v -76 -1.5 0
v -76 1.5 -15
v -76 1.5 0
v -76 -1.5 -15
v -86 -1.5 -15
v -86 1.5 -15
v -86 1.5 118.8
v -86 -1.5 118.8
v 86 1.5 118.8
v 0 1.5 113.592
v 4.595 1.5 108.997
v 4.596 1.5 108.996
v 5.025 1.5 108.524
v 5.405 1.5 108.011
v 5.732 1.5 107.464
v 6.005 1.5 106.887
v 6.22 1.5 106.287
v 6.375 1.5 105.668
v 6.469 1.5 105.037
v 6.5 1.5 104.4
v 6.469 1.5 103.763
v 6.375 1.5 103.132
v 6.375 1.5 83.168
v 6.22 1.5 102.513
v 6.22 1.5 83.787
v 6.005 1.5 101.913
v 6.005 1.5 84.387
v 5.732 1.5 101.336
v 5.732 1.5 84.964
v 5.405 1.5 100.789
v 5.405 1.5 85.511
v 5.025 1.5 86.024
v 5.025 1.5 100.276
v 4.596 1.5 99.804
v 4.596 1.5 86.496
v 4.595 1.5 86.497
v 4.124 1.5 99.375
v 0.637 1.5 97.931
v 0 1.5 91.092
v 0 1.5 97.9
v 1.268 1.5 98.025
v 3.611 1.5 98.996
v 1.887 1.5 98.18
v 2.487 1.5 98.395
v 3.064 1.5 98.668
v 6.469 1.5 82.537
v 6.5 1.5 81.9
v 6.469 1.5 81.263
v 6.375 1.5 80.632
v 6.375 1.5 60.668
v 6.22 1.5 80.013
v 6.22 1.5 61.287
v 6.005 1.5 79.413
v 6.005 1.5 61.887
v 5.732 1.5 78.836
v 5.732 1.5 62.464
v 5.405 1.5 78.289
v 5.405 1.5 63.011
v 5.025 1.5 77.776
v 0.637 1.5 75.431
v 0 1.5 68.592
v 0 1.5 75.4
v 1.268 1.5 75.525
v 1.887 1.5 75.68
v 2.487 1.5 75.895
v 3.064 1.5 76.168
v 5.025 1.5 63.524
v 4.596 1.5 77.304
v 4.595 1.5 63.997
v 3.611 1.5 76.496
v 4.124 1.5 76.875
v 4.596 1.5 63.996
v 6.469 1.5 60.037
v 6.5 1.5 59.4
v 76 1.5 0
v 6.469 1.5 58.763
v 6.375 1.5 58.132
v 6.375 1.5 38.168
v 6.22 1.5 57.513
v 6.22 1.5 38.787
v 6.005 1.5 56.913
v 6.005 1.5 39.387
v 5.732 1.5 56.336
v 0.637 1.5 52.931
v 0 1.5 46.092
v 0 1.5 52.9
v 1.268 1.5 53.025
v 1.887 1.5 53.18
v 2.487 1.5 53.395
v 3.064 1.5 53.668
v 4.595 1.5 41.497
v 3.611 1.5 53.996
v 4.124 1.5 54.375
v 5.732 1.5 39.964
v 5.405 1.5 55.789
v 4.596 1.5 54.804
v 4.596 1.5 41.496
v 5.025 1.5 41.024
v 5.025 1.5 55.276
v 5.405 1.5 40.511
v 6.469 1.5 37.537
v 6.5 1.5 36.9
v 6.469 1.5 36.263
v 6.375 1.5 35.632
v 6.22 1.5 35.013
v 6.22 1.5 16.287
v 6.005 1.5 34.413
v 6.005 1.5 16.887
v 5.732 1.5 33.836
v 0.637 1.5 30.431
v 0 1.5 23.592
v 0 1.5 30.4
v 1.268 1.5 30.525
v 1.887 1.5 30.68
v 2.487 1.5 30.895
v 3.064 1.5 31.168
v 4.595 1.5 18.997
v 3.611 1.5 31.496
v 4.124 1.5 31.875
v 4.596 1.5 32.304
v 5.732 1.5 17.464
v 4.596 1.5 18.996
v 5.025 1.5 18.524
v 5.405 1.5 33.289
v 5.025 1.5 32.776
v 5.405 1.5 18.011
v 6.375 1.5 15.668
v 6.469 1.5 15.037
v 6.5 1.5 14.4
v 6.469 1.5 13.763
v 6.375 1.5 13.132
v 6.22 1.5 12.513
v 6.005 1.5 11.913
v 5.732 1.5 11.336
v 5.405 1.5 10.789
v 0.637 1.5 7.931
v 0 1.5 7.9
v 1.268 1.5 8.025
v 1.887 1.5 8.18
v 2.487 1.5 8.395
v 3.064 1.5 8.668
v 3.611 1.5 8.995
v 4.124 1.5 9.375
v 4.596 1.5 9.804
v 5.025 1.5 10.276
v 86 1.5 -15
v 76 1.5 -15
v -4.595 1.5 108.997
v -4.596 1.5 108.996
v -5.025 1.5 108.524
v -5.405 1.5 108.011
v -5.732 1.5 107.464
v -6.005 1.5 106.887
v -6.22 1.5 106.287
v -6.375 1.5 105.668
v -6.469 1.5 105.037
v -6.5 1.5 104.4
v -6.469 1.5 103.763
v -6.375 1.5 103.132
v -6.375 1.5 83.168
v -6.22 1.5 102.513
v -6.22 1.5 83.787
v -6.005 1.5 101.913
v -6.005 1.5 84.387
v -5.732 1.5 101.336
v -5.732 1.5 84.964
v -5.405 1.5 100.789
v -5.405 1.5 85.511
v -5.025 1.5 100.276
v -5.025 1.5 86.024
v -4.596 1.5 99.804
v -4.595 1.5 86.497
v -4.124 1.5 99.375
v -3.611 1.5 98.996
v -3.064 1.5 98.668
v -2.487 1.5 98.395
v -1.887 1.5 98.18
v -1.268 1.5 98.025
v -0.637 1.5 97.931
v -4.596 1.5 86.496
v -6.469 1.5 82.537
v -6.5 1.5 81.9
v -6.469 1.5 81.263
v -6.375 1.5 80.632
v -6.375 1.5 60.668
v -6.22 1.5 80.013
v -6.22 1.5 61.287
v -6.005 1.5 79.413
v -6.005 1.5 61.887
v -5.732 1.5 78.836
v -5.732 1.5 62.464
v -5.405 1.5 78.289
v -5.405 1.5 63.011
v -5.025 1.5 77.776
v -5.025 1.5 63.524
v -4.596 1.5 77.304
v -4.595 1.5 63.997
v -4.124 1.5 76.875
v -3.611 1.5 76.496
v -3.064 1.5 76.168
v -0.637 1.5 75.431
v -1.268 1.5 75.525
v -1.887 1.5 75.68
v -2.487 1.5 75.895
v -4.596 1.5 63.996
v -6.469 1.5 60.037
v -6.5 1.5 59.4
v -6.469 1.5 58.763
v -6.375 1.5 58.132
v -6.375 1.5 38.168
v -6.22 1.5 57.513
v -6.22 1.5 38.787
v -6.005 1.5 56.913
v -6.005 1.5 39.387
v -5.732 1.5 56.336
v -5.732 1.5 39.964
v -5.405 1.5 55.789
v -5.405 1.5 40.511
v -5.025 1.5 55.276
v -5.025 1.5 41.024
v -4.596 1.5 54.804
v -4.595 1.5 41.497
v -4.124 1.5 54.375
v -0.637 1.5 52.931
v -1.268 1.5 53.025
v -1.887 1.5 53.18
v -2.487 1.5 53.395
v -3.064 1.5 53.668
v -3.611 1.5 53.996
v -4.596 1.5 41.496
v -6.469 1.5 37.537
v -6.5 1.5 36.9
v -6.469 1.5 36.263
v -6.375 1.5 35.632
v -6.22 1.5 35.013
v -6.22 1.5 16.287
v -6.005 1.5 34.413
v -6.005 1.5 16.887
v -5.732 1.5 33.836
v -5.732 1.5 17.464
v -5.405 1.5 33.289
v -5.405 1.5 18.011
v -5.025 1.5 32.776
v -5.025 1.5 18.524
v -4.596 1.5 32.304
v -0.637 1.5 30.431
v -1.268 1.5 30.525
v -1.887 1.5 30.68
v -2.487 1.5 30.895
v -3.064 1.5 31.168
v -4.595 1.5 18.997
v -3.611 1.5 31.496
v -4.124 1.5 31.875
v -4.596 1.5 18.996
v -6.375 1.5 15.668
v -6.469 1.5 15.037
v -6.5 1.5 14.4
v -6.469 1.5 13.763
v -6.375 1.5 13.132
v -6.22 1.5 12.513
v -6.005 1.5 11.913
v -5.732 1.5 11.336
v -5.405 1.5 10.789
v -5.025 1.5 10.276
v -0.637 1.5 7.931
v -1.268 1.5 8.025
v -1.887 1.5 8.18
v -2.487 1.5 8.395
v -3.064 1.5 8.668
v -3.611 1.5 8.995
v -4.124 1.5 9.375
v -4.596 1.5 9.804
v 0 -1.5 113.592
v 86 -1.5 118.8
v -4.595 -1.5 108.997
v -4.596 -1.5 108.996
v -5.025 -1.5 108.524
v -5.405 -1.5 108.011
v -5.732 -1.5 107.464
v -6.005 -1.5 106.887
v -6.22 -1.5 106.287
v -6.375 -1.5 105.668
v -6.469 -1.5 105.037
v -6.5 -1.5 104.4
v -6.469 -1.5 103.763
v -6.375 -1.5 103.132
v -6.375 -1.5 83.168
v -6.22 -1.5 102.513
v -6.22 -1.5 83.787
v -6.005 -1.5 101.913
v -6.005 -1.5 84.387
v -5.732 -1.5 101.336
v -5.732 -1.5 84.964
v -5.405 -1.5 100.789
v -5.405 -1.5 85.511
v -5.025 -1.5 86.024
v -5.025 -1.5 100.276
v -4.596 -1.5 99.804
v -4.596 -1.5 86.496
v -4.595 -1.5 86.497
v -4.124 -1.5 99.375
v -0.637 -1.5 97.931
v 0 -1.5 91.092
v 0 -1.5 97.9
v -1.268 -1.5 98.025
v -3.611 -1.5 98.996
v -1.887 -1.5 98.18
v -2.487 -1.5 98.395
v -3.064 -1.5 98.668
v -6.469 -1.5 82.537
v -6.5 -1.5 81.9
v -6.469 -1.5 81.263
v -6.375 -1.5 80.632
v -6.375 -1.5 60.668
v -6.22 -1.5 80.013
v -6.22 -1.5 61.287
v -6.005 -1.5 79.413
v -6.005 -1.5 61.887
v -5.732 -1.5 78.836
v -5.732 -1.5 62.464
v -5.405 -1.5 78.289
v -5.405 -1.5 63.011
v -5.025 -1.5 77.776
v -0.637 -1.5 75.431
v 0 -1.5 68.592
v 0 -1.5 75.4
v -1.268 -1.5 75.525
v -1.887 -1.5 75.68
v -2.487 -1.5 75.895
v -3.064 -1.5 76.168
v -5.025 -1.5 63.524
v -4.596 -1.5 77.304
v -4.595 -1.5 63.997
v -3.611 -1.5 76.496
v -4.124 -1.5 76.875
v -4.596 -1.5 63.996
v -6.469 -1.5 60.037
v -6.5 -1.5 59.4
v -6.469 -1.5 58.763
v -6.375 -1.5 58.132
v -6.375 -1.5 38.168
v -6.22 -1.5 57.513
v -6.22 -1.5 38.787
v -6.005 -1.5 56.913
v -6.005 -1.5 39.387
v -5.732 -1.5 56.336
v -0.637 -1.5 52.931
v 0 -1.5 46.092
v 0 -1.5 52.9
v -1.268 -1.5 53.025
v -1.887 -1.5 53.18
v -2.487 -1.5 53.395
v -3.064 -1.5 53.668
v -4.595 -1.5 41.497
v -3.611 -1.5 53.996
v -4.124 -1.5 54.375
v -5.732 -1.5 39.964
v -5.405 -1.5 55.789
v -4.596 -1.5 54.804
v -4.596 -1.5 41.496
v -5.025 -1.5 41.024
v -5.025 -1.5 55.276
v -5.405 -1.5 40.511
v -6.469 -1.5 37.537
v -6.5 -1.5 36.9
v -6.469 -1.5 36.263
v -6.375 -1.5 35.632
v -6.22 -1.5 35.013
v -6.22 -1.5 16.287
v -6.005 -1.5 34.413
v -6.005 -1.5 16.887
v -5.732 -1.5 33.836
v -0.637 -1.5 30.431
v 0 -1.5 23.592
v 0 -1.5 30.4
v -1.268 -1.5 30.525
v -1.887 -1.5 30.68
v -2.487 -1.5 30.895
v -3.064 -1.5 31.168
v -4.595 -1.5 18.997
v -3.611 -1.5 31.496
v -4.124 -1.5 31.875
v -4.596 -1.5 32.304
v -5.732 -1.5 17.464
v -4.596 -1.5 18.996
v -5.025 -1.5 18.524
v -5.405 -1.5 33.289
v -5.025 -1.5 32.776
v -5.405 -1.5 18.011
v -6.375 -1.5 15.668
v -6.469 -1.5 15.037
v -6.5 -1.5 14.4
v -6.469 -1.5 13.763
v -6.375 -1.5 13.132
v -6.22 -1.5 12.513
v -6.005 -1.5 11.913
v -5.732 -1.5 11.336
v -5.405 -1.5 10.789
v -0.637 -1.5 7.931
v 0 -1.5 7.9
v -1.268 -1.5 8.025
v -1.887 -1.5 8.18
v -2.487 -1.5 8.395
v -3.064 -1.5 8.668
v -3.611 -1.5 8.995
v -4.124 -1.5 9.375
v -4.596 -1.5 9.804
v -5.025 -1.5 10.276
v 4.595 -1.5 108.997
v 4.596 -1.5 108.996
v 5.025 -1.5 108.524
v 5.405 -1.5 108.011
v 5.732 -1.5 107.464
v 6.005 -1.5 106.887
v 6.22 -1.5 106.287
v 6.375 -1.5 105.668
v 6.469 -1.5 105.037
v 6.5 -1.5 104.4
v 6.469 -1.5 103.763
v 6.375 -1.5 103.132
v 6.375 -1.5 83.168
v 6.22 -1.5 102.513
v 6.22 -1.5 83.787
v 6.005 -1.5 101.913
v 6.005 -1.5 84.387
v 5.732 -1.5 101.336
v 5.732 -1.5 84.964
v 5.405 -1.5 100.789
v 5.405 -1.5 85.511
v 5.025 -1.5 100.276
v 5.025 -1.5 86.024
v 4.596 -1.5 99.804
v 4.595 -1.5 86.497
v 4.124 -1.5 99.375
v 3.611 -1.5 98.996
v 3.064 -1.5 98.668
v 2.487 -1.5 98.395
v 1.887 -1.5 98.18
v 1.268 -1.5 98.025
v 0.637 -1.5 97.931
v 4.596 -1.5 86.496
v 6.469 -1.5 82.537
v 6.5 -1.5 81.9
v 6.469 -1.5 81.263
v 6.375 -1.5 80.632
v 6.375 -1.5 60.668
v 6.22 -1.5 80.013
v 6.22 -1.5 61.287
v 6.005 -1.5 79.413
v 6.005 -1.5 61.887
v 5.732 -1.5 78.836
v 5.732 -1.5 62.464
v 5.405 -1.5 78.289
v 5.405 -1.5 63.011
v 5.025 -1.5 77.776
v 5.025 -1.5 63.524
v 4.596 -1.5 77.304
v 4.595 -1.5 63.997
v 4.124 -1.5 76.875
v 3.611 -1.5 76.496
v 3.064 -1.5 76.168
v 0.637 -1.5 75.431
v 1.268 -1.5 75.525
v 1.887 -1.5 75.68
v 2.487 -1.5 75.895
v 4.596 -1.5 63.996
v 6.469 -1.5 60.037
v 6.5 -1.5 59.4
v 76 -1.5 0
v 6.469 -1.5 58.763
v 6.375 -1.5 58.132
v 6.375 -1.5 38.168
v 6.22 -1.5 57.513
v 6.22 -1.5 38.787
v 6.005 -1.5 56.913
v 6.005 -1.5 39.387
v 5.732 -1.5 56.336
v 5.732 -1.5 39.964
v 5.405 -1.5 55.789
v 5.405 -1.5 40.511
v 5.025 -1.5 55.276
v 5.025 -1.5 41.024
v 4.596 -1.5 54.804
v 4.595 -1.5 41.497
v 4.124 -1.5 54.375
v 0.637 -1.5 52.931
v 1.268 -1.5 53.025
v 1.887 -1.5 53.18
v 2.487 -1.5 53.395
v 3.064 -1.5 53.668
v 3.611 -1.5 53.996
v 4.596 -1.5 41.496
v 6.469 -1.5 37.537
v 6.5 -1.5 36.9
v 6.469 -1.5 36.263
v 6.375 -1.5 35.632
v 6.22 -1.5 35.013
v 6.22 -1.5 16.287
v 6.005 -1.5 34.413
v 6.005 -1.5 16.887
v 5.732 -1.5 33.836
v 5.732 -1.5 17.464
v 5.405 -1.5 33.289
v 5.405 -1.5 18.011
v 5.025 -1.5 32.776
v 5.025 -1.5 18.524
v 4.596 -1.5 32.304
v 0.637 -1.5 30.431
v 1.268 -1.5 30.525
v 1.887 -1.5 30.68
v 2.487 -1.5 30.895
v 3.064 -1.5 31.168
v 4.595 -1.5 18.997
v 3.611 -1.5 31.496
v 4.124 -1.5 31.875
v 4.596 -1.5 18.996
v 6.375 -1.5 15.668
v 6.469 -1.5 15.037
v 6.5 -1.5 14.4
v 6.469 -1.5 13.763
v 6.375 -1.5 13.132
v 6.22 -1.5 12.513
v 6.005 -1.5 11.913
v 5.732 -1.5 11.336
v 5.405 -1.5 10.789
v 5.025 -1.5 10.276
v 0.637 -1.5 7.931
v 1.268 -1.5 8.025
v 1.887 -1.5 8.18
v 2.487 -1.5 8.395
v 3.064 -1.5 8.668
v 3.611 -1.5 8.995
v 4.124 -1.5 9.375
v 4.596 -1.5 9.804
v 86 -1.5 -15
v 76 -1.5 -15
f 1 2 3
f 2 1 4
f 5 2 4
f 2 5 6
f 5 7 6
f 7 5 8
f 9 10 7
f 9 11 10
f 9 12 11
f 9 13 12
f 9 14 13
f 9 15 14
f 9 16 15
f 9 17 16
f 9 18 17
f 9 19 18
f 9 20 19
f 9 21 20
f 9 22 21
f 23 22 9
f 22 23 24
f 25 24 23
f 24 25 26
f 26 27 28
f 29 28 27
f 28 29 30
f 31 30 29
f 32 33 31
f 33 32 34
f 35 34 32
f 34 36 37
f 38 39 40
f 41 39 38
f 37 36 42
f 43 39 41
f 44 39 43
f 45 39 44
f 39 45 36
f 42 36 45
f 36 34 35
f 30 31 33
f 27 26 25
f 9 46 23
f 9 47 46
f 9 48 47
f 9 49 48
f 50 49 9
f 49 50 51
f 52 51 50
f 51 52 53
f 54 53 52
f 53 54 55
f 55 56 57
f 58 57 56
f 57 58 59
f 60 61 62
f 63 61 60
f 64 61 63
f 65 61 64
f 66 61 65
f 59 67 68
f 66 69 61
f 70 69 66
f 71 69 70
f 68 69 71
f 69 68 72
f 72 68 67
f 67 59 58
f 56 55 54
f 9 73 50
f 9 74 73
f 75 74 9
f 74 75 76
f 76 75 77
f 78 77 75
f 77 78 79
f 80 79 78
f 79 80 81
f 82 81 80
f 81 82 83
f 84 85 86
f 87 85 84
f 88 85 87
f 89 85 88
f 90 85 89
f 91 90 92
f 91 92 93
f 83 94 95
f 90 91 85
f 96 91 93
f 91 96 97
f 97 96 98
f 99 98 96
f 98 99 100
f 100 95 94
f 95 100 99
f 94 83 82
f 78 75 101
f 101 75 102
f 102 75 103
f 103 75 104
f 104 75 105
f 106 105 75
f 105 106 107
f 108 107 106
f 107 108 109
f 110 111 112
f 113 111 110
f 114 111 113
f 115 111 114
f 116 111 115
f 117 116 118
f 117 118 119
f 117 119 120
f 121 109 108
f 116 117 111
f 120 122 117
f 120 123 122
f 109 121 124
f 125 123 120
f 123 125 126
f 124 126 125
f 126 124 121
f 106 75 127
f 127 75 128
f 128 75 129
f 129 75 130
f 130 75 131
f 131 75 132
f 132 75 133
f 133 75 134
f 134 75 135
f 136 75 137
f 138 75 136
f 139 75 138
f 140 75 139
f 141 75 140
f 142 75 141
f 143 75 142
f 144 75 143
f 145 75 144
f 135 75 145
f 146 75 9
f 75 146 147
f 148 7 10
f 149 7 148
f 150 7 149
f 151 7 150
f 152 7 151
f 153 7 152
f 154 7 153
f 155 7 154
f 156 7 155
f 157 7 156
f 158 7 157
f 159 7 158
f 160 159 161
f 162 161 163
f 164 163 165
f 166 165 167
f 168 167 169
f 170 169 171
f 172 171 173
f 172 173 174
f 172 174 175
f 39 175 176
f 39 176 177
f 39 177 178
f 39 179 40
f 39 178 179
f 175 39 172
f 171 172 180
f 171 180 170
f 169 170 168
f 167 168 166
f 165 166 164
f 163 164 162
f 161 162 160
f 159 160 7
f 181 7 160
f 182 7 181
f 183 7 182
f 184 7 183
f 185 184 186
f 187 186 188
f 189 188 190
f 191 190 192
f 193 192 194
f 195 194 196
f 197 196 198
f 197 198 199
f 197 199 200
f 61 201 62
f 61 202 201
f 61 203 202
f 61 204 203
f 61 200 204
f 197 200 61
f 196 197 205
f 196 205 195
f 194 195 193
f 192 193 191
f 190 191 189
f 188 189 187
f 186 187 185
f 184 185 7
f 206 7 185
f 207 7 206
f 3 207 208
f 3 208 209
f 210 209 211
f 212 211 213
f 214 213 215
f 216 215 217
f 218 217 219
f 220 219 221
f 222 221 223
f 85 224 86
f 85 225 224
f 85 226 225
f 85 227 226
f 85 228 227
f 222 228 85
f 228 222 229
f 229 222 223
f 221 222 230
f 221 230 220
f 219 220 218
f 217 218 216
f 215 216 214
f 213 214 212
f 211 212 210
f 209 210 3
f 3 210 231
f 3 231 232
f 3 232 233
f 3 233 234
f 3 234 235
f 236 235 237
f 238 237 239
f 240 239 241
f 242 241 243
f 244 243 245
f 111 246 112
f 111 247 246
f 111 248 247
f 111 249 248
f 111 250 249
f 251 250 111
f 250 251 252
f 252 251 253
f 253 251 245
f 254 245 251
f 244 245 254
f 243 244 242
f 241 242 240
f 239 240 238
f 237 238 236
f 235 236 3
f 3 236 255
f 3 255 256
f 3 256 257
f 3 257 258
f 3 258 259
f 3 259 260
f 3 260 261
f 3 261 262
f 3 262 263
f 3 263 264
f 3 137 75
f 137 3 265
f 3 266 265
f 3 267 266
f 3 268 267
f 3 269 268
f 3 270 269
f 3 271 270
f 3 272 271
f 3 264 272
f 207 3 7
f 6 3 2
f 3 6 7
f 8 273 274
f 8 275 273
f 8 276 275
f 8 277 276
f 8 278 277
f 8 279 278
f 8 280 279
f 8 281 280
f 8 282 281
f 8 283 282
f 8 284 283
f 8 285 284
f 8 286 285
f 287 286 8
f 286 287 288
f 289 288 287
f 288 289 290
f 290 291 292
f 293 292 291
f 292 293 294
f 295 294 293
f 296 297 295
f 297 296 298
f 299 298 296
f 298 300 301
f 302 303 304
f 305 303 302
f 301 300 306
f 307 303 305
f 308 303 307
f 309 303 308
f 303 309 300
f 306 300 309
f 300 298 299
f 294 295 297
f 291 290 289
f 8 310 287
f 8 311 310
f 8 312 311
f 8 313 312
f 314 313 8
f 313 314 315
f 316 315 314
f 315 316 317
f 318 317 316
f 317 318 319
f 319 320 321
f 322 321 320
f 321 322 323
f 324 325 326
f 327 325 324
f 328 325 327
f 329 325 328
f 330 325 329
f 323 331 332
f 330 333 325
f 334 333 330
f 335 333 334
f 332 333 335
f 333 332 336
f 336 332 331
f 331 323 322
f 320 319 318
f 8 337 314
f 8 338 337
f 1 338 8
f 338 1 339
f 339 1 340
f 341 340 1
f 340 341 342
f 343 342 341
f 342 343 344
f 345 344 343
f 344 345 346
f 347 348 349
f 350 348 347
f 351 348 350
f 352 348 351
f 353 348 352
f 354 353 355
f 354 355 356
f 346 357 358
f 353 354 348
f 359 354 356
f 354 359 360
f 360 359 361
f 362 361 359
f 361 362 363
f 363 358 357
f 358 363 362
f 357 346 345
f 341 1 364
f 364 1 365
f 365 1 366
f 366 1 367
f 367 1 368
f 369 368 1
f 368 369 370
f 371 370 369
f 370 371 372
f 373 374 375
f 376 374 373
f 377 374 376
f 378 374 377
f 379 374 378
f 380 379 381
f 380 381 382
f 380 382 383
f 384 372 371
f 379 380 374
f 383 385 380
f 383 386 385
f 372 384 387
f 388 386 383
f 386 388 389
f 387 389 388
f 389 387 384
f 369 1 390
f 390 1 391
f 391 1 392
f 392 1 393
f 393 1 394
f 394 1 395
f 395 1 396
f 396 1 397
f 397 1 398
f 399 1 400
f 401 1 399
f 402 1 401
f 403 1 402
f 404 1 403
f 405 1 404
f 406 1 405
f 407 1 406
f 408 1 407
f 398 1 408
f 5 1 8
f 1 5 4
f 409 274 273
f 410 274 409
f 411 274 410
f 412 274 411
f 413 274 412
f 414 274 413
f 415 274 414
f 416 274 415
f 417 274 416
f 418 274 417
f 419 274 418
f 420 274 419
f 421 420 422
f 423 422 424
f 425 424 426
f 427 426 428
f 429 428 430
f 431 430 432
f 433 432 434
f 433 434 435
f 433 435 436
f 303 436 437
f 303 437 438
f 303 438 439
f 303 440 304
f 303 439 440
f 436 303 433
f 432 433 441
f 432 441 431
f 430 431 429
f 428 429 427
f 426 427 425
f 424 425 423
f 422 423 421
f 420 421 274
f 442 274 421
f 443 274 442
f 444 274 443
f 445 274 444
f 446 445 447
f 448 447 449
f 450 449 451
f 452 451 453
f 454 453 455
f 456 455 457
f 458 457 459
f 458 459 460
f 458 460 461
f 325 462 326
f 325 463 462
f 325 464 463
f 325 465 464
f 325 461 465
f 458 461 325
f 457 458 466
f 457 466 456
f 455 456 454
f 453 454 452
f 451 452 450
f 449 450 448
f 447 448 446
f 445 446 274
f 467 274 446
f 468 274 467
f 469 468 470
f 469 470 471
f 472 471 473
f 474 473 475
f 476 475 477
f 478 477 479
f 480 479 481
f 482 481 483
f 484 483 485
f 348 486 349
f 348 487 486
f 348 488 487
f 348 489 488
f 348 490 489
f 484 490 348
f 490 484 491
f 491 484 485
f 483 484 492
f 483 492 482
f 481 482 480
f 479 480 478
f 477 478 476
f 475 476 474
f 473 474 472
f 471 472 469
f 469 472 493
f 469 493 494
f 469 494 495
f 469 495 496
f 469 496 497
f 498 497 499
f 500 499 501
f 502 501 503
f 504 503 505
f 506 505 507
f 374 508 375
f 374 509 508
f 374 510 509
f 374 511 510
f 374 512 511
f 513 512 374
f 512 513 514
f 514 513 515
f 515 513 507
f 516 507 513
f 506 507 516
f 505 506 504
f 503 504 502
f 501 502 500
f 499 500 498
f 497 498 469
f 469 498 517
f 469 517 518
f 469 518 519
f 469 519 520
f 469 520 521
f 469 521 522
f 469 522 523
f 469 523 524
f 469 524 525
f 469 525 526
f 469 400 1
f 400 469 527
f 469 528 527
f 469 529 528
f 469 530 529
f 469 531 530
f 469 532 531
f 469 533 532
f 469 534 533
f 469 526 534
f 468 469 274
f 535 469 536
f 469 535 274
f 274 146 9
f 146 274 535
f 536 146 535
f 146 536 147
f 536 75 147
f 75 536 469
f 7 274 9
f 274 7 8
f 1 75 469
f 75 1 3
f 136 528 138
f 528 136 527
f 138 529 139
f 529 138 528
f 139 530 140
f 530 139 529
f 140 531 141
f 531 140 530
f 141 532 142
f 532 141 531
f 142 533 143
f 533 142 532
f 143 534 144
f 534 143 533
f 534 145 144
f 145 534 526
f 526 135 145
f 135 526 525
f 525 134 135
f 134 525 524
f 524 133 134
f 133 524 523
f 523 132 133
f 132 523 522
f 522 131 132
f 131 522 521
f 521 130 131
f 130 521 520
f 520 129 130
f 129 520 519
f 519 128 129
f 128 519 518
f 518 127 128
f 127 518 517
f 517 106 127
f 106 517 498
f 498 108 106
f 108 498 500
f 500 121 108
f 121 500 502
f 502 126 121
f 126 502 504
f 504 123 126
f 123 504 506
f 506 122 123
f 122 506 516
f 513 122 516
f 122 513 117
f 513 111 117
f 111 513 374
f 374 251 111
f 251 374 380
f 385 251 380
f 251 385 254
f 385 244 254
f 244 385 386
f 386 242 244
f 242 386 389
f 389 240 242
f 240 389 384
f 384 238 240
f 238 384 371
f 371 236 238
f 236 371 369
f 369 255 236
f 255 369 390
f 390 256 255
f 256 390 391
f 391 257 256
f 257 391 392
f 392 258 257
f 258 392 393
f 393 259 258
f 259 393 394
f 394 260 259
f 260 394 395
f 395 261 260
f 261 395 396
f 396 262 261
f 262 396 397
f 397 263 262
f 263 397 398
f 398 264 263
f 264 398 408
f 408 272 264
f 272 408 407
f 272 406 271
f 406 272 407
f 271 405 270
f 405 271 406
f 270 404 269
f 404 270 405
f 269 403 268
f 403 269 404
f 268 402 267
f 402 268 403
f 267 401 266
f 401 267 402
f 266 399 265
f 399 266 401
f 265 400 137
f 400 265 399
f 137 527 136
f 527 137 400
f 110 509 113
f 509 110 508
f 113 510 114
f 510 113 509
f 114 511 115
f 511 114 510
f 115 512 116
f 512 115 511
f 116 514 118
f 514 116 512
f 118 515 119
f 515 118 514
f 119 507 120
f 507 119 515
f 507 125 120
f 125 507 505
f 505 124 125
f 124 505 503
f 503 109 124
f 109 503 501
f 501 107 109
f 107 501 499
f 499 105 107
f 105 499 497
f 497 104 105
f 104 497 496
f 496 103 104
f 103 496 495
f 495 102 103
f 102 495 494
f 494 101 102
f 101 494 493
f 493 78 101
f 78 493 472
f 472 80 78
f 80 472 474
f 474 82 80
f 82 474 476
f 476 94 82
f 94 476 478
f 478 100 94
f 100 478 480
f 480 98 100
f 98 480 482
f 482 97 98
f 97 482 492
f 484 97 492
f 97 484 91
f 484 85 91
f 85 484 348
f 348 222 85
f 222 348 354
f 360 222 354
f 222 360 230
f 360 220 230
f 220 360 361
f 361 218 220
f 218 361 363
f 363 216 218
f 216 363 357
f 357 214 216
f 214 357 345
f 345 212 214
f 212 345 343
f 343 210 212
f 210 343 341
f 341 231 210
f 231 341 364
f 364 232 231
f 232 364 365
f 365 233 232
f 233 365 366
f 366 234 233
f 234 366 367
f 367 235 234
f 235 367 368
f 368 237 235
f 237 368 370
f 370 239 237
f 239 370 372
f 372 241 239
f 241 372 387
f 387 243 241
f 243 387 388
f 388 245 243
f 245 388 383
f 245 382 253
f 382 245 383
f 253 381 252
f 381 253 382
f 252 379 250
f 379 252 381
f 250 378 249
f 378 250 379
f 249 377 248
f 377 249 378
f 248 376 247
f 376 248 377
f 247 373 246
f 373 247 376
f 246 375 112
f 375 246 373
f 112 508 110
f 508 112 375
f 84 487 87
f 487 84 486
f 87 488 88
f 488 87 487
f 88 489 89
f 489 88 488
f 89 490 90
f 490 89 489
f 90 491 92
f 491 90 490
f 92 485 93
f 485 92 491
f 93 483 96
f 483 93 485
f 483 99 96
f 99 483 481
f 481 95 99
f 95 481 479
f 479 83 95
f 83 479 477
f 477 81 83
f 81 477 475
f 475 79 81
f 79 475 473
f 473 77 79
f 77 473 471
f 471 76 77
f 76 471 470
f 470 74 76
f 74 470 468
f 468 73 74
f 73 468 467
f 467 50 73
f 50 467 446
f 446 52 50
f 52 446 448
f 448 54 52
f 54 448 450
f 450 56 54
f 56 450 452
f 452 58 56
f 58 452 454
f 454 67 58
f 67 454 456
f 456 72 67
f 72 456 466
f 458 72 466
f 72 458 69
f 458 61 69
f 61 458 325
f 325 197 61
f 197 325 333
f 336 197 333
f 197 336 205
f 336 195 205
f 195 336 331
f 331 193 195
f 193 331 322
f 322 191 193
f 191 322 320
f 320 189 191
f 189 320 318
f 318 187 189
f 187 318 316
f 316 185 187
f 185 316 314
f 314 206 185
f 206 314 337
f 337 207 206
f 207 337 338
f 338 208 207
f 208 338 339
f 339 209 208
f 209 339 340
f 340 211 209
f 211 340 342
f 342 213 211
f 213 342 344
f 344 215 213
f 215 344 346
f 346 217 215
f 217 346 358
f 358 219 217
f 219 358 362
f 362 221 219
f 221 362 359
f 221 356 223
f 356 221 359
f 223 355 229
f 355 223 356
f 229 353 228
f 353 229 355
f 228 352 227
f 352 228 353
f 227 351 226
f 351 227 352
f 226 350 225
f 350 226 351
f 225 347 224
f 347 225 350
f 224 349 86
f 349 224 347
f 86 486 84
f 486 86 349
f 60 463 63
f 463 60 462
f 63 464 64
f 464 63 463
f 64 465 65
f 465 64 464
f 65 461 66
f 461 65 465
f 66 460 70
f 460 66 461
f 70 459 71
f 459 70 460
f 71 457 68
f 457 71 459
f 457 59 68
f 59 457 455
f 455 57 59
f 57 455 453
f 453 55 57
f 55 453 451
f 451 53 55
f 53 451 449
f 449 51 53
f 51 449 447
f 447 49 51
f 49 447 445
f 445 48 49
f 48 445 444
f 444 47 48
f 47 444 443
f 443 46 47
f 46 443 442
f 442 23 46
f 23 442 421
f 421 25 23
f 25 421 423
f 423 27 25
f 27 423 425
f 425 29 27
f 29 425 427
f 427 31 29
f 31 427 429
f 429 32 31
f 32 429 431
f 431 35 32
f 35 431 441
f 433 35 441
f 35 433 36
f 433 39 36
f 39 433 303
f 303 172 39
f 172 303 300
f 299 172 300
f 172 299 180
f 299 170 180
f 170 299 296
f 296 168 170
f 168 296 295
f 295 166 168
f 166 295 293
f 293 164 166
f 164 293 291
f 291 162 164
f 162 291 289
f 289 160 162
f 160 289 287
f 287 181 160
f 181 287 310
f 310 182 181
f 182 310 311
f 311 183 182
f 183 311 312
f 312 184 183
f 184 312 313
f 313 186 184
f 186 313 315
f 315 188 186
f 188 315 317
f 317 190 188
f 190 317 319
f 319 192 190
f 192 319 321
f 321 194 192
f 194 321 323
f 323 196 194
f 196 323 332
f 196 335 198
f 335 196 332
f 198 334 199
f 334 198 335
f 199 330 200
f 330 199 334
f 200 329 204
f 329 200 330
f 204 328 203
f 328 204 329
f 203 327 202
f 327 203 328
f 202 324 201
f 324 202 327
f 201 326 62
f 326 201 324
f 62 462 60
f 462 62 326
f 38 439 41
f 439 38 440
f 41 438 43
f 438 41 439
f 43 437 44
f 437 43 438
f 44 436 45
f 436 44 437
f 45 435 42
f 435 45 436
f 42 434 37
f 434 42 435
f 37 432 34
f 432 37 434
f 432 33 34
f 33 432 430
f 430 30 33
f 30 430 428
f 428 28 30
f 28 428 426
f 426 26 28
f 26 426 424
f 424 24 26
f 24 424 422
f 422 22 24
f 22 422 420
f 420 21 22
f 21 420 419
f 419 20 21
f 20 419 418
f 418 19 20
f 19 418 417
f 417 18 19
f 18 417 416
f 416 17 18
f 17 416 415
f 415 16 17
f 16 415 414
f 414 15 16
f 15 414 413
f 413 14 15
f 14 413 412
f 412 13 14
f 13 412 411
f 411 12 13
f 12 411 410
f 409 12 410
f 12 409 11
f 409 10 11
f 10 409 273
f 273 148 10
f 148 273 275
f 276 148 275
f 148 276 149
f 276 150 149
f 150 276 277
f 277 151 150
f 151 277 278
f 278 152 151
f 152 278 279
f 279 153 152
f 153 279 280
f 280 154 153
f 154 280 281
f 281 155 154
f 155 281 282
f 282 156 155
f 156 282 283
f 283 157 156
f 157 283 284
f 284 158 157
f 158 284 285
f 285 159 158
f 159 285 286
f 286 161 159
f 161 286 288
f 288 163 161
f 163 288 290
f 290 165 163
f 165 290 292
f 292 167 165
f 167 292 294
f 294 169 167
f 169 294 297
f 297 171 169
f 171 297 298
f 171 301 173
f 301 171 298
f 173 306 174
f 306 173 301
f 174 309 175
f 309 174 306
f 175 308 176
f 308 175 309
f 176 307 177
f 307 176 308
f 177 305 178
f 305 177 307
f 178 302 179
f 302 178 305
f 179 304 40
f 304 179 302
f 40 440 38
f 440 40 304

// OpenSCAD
// file: common.scad
// ============================================================
// common.scad — shared parameters + modules for all designs
// LOCKED PEN SPECIFICATION (do not change)
// ============================================================
PEN_L = 165;      // pen length (mm)
PEN_A = 17;       // pen cross-section minor
PEN_B = 20;       // pen cross-section major (used as diameter envelope)
CLEAR = 0.4;      // fit clearance
WALL  = 1.6;      // minimum wall thickness

$fn = 64;

RCH = PEN_B/2 + CLEAR;   // = 10.4  channel radius
EPS = 0.01;

// --- open-top U trough cut, axis along X, centered at local origin -----------
// Removes a lower half-cylinder of radius r plus a full-width vertical slot
// upward, so the channel is open at the top (no ceiling -> no overhang).
module trough_cut(len, r=RCH, top=80) {
    union() {
        rotate([0,90,0]) cylinder(h=len, r=r, center=true);
        translate([0,0,top/2]) cube([len, 2*r, top], center=true); // slot upward
    }
}

// --- teardrop hole, axis along X, centered at local origin --------------------
// 45-degree self-supporting apex pointing +Z so a horizontal bore can print
// without support.
module teardrop_cut(len, r=RCH) {
    rotate([0,90,0])
        linear_extrude(height=len, center=true)
            union() {
                circle(r=r);
                polygon([[ 0.7071*r, 0.7071*r],
                         [ 0,         1.4142*r],
                         [-0.7071*r,  0.7071*r]]);
            }
}

// --- dial relief: widened open-top pocket at one channel end -----------------
// place at the +X or -X end of a channel so the dose dial clears / can be turned
module dial_relief(end_x, r=RCH+2.2, len=28, top=80) {
    translate([end_x, 0, 0]) trough_cut(len, r, top);
}
// file: gate_lib.scad
// gate_lib.scad — two-part front-removable rack: open cradle BODY + lift-off GATE
// The body is a reclined ramp with open grooves; pens pull straight out the
// front. A slim gate drops into a catch at each end and spans the front, blocking
// the pens until you lift it off. Everything is a loose/positive fit -> nothing
// tolerance-critical, no snap, no test print.
include <common.scad>

LBLK = PEN_L + 7;     // 172 body length
GTH  = 3.0;           // gate thickness
GCL  = 0.6;           // generous clearance for the gate-to-catch fit
TABW = 10;            // gate end-tab width (along X)

// ---- shared layout ---------------------------------------------------------
function _yc(n,P,phi,i) = (-(n-1)/2 + i) * P * cos(phi);
function _zc(n,P,phi,i) = (WALL + RCH) + i * P * sin(phi);
function _ymn(n,P,phi)  = _yc(n,P,phi,0)   - RCH - WALL;
function _ymx(n,P,phi)  = _yc(n,P,phi,n-1) + RCH + WALL;
function _Hb(n,P,phi)   = _zc(n,P,phi,n-1) + RCH + 10;
// up-slope length of the ramp face (gate height when printed standing)
function _faceL(n,P)    = (n-1)*P + 2*RCH + 8;

// 2D teardrop (45deg apex toward +Y) for self-supporting windows
module _td2d(r) {
    union() {
        circle(r=r);
        polygon([[0.7071*r,0.7071*r],[0,1.4142*r],[-0.7071*r,0.7071*r]]);
    }
}

// ===================== BODY (prints in this orientation) ====================
module body(n=4, phi=52, P=22.5, lip=2.0, rr=RCH+2, rlen=34) {
    cph=cos(phi); sph=sin(phi);
    yc=[for(i=[0:n-1]) _yc(n,P,phi,i)];
    zc=[for(i=[0:n-1]) _zc(n,P,phi,i)];
    ymn=_ymn(n,P,phi); ymx=_ymx(n,P,phi);
    Wb=ymx-ymn; ycen=(ymx+ymn)/2; Hb=_Hb(n,P,phi);
    relief_cx=LBLK/2-12; big=800;
    cxtab = LBLK/2 - TABW/2;     // catch sits just inside each end

    difference() {
        union() {
            // sheared wedge
            difference() {
                translate([0,ycen,Hb/2]) cube([LBLK,Wb,Hb],center=true);
                translate([0,yc[0],zc[0]+lip]) rotate([phi,0,0])
                    translate([0,0,big/2]) cube([LBLK+2,big,big],center=true);
            }
            // two end CATCHES: posts at the front-bottom corners with an
            // up-slope-open pocket the gate end-tab drops into
            for (sx=[-1,1])
                translate([sx*cxtab, ymn - GTH - GCL, 0])
                    catch_post(phi);
        }
        // open grooves (pen pulls out the front) + dial relief
        for (i=[0:n-1]) {
            translate([0,yc[i],zc[i]]) rotate([0,90,0]) cylinder(h=LBLK+2,r=RCH,center=true);
            translate([relief_cx,yc[i],zc[i]]) rotate([0,90,0]) cylinder(h=rlen,r=rr,center=true);
        }
        // pocket inside each catch (the slot the gate tab sits in)
        for (sx=[-1,1])
            translate([sx*cxtab, ymn - GTH/2, 0])
                catch_slot();
    }
}

module catch_post(phi) {
    // a small block in front of the ramp toe, tall enough to hold the gate
    translate([0,0,18/2]) cube([TABW, GTH+2, 18], center=true);
}
module catch_slot() {
    // open-topped slot the gate end-tab drops into (loose fit)
    translate([0,0,30]) cube([TABW+2*GCL, GTH+2*GCL, 60], center=true);
}

// ===================== GATE (authored STANDING for printing) ================
// Printed as a thin upright wall: X = length, Z = ramp-face height, Y = thickness
module gate(n=4, phi=52, P=22.5, rwin=6.5) {
    faceL=_faceL(n,P);
    difference() {
        union() {
            // main panel
            translate([0,0,faceL/2]) cube([LBLK, GTH, faceL], center=true);
            // two end tabs that drop into the body catches (extend below panel)
            for (sx=[-1,1])
                translate([sx*(LBLK/2 - TABW/2), 0, -7])
                    cube([TABW, GTH, 16], center=true);
        }
        // grab windows aligned to each pen's up-slope position
        for (i=[0:n-1])
            translate([0, 0, RCH + 4 + i*P])
                rotate([90,0,0]) linear_extrude(height=GTH+2, center=true) _td2d(rwin);
    }
}
// main file
// f2 gate — lift-off front retainer (printed standing).
include <gate_lib.scad>
gate(n=5, phi=69, P=22.5);
